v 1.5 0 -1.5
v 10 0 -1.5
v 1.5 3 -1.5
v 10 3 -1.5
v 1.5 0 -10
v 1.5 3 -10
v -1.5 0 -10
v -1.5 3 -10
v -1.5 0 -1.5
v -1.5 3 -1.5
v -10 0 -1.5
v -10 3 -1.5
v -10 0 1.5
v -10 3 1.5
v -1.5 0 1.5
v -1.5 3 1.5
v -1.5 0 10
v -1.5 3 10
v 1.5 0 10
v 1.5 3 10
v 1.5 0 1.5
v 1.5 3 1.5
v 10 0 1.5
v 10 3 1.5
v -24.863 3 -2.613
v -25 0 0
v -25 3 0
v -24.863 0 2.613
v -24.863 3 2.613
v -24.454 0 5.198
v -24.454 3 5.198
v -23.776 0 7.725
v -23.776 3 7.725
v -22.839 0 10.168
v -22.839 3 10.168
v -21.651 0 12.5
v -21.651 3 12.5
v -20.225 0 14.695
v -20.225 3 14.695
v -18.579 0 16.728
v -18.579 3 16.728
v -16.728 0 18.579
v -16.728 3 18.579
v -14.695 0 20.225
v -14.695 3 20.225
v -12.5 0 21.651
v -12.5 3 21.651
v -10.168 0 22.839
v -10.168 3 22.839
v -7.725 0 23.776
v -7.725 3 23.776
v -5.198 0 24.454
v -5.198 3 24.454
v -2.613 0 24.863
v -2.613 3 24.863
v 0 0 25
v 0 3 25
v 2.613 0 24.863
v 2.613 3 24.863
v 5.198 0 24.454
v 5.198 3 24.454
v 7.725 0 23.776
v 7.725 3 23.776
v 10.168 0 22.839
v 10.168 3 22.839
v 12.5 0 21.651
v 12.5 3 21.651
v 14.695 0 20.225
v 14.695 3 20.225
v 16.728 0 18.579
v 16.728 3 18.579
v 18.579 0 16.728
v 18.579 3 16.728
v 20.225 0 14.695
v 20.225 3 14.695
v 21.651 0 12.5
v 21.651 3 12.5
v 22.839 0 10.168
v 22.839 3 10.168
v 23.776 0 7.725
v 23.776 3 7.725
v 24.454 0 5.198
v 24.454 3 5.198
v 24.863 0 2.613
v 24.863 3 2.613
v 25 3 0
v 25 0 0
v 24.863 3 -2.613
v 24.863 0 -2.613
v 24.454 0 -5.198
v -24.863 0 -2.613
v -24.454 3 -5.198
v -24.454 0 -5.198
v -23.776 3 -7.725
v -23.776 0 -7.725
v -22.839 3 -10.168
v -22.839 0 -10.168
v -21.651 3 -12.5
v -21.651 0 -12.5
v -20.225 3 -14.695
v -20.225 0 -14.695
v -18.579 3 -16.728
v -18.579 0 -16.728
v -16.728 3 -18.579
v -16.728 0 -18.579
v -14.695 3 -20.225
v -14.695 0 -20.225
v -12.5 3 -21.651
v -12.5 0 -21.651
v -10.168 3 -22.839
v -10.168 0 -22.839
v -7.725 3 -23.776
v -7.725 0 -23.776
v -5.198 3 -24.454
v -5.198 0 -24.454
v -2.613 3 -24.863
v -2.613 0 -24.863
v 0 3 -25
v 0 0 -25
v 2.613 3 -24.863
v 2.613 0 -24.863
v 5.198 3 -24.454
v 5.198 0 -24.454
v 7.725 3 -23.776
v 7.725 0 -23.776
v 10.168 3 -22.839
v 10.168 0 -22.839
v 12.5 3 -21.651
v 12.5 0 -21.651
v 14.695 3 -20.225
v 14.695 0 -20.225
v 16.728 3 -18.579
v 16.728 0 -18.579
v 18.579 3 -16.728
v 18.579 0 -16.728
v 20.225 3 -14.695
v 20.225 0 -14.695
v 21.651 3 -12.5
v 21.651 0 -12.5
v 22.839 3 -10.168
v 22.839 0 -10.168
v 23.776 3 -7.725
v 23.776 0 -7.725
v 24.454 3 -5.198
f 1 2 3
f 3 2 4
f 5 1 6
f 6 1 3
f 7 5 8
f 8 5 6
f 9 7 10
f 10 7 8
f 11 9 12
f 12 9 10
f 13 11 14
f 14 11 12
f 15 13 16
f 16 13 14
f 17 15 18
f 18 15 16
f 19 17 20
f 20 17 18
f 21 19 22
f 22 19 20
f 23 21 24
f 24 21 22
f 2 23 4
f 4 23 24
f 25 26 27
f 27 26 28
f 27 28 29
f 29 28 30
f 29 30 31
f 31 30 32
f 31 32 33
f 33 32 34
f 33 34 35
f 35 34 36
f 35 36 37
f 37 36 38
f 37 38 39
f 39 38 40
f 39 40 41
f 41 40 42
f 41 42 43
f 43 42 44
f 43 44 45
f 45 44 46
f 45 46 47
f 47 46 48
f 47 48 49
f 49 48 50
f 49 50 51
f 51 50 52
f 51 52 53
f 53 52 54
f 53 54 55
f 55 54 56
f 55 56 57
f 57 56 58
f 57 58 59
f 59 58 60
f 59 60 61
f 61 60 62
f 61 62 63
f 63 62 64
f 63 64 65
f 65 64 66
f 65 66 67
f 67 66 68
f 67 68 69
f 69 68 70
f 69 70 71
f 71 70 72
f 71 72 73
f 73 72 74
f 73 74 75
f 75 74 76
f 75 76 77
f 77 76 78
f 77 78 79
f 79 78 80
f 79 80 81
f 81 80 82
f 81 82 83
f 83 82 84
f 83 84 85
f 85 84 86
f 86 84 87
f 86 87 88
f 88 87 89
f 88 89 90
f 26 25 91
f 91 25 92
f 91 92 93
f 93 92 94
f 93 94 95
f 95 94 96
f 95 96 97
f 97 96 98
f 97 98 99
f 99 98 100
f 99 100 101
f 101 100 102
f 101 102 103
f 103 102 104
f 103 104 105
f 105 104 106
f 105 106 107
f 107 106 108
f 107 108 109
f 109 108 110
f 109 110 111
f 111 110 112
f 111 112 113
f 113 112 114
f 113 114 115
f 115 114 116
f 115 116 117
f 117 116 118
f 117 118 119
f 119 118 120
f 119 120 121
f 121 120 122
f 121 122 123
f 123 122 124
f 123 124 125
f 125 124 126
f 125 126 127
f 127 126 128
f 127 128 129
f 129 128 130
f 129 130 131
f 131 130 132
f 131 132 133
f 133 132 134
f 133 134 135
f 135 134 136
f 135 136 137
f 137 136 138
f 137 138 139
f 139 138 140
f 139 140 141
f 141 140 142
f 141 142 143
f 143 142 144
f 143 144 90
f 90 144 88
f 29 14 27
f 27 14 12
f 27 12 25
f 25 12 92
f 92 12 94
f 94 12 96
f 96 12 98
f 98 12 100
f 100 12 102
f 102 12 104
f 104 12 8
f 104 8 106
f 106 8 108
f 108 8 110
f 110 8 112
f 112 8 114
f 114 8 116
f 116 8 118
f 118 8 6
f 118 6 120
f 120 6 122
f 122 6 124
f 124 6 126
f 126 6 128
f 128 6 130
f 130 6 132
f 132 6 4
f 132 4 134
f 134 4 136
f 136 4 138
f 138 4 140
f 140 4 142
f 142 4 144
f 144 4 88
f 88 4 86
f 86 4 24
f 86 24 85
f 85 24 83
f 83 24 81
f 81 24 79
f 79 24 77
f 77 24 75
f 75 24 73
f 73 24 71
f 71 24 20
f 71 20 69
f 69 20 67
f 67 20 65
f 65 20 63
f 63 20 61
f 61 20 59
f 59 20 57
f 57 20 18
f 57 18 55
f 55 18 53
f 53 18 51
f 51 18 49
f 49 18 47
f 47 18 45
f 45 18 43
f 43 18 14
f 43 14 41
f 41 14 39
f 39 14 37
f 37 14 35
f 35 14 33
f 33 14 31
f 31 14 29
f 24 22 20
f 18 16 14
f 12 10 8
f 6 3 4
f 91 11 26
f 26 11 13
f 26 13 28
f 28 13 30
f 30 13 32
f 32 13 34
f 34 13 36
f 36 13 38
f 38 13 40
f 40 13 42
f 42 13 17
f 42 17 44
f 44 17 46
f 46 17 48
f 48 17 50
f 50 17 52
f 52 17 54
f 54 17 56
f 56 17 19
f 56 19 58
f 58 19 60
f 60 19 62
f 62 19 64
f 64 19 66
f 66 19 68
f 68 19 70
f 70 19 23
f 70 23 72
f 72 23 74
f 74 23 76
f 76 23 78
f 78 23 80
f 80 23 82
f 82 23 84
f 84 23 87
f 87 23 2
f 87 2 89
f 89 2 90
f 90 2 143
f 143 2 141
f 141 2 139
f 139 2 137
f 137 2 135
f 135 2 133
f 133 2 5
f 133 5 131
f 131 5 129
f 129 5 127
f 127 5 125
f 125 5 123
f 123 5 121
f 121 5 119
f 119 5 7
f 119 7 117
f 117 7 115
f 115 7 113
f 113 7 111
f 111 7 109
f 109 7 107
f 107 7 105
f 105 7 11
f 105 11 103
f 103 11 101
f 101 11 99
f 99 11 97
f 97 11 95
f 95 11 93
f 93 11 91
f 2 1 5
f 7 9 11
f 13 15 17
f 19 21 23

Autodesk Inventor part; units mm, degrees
ref_plane "YZ Plane" through (0, 0, 0) normal (1, 0, 0) x (0, 1, 0)
ref_plane "XZ Plane" through (0, 0, 0) normal (0, 1, 0) x (-1, 0, 0)
ref_plane "XY Plane" through (0, 0, 0) normal (0, 0, 1) x (1, 0, 0)
sketch "Sketch1" plane through (0, 0, 0) normal (0, 1, 0) x (-1, 0, 0)
  circle A0 centre (0, 0) radius 25
  line L0 (10, 1.5) -> (-10, 1.5)
  line L1 (-10, 1.5) -> (-10, -1.5)
  line L2 (-10, -1.5) -> (10, -1.5)
  line L3 (10, -1.5) -> (10, 1.5)
  line L4 (1.5, 10) -> (-1.5, 10)
  line L5 (-1.5, 10) -> (-1.5, -10)
  line L6 (-1.5, -10) -> (1.5, -10)
  line L7 (1.5, -10) -> (1.5, 10)
  point P0 (-1.5, 1.5)
  point P1 (1.5, 1.5)
  point P2 (1.5, -1.5)
  point P3 (-1.5, -1.5)
  dimension "d0" = 50
  dimension "d1" = 20
  dimension "d2" = 3
  dimension "d3" = 1.5
  dimension "d4" = 10
  dimension "d5" = 3
  dimension "d6" = 20
  dimension "d7" = 10
  dimension "d8" = 1.5
extrude "Extrusion1" add sketch "Sketch1" along normal blind 3
properties part number "Base Arvore"
